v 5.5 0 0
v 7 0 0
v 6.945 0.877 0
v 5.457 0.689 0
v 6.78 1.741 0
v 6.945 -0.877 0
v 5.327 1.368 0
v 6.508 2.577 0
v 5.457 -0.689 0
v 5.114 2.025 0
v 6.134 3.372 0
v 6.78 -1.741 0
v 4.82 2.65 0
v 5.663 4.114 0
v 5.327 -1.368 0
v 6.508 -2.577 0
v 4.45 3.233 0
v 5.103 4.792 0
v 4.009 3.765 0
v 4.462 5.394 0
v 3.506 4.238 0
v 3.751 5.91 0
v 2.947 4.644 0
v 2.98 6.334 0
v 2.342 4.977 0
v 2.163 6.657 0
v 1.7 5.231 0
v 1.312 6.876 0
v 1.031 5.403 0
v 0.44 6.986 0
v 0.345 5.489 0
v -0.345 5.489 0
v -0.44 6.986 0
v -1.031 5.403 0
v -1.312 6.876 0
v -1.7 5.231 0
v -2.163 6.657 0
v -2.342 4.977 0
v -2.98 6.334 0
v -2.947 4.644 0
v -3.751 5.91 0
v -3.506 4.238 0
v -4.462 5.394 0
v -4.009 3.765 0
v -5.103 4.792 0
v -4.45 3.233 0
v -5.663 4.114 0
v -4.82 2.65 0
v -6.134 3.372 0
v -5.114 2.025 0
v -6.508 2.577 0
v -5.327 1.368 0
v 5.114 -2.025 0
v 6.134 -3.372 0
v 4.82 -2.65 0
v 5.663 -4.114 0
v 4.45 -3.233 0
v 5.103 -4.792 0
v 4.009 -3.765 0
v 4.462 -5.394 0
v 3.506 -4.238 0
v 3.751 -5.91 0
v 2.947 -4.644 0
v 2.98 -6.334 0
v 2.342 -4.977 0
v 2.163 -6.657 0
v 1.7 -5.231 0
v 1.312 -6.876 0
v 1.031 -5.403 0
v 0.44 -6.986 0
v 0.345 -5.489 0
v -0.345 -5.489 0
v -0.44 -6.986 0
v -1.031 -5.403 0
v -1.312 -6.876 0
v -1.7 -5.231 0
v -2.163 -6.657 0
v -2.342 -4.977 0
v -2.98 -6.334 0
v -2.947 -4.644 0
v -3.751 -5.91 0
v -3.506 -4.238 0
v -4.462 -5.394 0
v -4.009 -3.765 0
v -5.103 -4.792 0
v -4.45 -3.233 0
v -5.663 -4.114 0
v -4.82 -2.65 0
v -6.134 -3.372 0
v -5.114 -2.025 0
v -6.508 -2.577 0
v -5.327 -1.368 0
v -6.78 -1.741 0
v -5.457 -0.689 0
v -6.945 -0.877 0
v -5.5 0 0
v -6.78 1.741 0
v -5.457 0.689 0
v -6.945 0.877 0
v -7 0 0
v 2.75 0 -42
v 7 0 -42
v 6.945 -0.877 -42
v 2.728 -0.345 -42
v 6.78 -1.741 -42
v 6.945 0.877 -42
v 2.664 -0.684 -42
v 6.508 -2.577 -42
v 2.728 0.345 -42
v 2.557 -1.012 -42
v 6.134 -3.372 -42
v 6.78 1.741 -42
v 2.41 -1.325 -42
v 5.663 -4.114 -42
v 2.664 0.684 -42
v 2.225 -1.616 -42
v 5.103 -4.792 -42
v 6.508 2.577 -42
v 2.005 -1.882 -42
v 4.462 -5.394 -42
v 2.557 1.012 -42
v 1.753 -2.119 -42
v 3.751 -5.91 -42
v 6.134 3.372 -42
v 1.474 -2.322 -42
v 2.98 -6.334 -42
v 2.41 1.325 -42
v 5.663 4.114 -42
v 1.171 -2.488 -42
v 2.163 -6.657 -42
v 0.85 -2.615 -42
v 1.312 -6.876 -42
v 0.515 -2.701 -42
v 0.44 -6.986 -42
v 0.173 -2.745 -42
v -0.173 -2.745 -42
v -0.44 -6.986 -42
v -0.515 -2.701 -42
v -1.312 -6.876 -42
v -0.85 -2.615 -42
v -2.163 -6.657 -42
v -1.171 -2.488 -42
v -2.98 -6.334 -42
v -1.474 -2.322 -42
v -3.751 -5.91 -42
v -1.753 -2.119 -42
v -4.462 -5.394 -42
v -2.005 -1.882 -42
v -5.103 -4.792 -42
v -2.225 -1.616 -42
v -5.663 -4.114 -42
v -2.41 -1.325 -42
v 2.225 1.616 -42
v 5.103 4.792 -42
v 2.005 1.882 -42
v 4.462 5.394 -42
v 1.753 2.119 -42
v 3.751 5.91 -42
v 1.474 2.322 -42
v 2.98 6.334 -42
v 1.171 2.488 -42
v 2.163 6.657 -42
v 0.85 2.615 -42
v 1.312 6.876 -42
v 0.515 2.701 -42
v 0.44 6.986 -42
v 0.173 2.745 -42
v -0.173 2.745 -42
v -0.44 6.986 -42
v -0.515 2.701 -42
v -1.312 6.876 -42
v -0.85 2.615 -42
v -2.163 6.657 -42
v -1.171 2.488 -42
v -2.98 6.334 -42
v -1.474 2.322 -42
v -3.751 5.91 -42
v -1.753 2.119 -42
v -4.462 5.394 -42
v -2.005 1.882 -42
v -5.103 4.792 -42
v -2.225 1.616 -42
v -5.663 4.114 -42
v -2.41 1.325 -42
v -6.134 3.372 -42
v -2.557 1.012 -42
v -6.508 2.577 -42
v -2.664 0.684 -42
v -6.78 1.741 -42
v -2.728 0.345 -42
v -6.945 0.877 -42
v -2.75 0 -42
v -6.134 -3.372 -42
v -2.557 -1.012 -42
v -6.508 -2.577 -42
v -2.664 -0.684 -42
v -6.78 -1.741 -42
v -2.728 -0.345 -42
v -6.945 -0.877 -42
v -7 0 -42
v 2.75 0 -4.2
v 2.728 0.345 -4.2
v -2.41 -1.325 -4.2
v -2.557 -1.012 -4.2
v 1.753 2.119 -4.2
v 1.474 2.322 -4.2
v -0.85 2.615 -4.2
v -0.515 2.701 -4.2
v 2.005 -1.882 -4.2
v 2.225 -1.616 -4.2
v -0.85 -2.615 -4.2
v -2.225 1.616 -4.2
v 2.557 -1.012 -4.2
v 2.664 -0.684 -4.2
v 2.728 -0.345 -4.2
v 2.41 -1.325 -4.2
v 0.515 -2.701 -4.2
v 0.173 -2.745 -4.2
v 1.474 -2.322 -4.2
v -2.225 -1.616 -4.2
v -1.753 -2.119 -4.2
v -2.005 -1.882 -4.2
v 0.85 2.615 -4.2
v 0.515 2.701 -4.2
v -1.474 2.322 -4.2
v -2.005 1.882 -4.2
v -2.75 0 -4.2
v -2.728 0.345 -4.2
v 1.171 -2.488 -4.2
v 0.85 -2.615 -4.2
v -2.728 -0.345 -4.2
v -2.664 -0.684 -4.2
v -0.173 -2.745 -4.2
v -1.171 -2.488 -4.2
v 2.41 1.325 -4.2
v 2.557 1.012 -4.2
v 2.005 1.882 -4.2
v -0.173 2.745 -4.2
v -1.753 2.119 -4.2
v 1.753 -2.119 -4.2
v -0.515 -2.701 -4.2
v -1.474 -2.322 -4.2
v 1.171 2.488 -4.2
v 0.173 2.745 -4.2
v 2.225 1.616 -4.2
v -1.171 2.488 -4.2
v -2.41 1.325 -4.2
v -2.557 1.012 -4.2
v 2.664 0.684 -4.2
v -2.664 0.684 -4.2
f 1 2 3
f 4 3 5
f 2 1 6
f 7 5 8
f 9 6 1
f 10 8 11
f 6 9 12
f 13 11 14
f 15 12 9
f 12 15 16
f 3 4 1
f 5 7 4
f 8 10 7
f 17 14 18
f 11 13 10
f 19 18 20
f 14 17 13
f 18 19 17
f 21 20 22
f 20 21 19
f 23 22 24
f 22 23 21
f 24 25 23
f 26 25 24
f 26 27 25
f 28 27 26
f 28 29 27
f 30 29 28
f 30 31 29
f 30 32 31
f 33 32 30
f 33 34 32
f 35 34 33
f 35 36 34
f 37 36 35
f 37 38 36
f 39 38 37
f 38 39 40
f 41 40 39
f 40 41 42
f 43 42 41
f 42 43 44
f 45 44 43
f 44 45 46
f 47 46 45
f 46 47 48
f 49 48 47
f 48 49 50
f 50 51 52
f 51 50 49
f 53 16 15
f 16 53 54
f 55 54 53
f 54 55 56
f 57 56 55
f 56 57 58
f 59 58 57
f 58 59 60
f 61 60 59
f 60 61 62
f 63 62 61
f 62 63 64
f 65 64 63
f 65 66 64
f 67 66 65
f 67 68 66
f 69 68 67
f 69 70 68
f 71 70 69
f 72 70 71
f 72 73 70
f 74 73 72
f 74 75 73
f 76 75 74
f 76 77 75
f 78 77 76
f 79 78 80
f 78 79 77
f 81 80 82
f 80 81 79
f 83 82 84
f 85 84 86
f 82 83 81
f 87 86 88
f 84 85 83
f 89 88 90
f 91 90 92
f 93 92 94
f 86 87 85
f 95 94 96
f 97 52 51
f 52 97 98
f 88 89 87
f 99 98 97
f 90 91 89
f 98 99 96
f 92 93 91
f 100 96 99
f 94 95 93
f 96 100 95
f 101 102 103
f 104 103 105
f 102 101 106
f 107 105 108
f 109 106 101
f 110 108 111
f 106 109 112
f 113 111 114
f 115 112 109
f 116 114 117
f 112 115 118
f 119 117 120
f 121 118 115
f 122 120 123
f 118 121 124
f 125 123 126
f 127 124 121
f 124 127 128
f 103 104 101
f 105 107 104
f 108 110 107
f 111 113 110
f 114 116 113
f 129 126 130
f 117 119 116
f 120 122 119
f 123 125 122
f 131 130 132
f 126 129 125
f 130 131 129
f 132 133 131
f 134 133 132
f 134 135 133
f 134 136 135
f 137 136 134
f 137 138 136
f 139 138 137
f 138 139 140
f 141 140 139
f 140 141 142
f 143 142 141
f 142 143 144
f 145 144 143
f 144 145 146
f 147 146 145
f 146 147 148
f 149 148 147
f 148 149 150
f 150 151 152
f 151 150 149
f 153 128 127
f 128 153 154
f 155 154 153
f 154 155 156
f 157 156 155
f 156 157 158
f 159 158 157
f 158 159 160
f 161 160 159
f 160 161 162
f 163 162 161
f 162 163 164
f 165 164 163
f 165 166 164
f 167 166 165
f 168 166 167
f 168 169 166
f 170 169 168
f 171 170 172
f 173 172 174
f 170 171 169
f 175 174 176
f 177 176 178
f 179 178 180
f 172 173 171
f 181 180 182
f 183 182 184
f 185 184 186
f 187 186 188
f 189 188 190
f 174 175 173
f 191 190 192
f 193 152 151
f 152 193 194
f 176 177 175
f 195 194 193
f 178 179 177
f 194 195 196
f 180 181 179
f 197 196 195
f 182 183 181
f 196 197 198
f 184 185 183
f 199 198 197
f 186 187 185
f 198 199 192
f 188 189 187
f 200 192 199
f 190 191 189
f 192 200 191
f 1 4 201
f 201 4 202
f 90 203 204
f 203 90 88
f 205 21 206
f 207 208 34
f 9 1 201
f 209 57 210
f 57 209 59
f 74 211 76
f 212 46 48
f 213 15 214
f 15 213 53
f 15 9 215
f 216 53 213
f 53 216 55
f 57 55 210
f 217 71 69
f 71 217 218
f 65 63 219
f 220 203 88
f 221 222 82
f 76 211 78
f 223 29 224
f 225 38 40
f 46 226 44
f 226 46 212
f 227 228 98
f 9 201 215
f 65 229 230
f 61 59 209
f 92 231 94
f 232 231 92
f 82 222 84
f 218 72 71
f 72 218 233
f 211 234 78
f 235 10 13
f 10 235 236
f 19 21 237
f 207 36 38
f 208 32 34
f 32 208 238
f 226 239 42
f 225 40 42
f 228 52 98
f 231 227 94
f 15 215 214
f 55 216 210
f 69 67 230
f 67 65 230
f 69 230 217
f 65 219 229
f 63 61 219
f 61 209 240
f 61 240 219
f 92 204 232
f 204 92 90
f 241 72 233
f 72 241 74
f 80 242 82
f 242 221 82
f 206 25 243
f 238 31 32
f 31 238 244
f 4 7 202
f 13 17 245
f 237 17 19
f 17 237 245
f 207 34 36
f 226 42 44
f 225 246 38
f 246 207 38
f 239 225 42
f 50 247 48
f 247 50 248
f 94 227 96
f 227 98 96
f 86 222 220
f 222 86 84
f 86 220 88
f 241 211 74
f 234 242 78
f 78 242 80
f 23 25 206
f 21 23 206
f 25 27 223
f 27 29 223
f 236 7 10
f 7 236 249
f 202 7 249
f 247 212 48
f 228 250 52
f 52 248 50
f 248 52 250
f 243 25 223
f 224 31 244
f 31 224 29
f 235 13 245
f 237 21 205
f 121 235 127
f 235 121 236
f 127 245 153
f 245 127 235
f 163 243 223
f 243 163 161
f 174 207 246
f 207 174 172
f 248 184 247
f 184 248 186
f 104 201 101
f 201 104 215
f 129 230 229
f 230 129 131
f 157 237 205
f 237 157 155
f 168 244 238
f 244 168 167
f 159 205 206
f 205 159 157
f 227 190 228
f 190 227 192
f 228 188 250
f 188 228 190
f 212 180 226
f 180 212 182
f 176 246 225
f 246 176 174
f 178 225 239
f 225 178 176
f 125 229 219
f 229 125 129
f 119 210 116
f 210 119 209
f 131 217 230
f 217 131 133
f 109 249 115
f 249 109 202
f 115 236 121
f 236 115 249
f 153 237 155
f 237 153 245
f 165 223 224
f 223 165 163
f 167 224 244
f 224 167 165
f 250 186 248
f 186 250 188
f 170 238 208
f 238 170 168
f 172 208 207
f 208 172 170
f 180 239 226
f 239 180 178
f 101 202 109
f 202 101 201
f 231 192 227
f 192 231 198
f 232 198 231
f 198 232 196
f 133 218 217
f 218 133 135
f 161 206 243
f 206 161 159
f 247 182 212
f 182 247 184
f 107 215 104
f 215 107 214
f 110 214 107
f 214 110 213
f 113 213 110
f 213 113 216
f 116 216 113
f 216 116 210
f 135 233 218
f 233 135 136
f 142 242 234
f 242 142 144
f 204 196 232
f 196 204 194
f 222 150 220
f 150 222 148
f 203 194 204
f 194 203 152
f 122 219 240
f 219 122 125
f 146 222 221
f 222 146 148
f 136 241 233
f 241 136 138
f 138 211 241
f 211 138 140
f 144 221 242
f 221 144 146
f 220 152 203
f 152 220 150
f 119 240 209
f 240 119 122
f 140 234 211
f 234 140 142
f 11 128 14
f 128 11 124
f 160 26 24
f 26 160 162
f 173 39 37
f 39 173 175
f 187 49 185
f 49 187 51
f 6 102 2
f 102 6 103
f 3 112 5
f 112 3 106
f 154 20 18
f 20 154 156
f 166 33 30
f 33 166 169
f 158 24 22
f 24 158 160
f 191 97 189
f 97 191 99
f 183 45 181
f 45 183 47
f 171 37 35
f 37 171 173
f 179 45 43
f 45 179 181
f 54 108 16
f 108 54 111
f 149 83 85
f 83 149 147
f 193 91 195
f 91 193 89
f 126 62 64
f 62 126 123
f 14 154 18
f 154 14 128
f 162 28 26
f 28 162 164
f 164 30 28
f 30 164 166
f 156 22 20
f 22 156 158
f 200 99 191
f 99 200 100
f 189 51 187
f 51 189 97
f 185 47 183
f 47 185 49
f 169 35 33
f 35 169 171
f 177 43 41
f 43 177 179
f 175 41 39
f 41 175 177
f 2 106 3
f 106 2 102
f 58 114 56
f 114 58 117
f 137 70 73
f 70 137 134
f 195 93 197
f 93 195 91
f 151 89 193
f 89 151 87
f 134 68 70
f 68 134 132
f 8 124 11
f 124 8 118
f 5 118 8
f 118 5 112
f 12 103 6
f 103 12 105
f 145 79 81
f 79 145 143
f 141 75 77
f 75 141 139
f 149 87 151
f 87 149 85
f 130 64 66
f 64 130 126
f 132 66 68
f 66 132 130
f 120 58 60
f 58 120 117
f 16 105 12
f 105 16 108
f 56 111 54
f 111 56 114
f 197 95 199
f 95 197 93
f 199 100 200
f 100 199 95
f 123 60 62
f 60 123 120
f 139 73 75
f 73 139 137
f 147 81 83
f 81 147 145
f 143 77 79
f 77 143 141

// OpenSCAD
$fn = 50;


difference() {
	union() {
		translate(v = [0, 0, -42.0000000000]) {
			cylinder(h = 42, r = 7.0000000000);
		}
		cylinder(h = 0, r = 17.0000000000);
	}
	union() {
		translate(v = [0, 0, 0]) {
			rotate(a = [0, 0, 0]) {
				difference() {
					union() {
						#translate(v = [0, 0, -42.0000000000]) {
							cylinder(h = 42, r = 2.2500000000);
						}
						#translate(v = [0, 0, -4.2000000000]) {
							cylinder(h = 4.2000000000, r = 7.0000000000, r1 = 2.7500000000, r2 = 5.5000000000);
						}
						#translate(v = [0, 0, -42.0000000000]) {
							cylinder(h = 42, r = 2.7500000000);
						}
						#translate(v = [0, 0, -42.0000000000]) {
							cylinder(h = 42, r = 2.2500000000);
						}
					}
					union();
				}
			}
		}
	}
}
